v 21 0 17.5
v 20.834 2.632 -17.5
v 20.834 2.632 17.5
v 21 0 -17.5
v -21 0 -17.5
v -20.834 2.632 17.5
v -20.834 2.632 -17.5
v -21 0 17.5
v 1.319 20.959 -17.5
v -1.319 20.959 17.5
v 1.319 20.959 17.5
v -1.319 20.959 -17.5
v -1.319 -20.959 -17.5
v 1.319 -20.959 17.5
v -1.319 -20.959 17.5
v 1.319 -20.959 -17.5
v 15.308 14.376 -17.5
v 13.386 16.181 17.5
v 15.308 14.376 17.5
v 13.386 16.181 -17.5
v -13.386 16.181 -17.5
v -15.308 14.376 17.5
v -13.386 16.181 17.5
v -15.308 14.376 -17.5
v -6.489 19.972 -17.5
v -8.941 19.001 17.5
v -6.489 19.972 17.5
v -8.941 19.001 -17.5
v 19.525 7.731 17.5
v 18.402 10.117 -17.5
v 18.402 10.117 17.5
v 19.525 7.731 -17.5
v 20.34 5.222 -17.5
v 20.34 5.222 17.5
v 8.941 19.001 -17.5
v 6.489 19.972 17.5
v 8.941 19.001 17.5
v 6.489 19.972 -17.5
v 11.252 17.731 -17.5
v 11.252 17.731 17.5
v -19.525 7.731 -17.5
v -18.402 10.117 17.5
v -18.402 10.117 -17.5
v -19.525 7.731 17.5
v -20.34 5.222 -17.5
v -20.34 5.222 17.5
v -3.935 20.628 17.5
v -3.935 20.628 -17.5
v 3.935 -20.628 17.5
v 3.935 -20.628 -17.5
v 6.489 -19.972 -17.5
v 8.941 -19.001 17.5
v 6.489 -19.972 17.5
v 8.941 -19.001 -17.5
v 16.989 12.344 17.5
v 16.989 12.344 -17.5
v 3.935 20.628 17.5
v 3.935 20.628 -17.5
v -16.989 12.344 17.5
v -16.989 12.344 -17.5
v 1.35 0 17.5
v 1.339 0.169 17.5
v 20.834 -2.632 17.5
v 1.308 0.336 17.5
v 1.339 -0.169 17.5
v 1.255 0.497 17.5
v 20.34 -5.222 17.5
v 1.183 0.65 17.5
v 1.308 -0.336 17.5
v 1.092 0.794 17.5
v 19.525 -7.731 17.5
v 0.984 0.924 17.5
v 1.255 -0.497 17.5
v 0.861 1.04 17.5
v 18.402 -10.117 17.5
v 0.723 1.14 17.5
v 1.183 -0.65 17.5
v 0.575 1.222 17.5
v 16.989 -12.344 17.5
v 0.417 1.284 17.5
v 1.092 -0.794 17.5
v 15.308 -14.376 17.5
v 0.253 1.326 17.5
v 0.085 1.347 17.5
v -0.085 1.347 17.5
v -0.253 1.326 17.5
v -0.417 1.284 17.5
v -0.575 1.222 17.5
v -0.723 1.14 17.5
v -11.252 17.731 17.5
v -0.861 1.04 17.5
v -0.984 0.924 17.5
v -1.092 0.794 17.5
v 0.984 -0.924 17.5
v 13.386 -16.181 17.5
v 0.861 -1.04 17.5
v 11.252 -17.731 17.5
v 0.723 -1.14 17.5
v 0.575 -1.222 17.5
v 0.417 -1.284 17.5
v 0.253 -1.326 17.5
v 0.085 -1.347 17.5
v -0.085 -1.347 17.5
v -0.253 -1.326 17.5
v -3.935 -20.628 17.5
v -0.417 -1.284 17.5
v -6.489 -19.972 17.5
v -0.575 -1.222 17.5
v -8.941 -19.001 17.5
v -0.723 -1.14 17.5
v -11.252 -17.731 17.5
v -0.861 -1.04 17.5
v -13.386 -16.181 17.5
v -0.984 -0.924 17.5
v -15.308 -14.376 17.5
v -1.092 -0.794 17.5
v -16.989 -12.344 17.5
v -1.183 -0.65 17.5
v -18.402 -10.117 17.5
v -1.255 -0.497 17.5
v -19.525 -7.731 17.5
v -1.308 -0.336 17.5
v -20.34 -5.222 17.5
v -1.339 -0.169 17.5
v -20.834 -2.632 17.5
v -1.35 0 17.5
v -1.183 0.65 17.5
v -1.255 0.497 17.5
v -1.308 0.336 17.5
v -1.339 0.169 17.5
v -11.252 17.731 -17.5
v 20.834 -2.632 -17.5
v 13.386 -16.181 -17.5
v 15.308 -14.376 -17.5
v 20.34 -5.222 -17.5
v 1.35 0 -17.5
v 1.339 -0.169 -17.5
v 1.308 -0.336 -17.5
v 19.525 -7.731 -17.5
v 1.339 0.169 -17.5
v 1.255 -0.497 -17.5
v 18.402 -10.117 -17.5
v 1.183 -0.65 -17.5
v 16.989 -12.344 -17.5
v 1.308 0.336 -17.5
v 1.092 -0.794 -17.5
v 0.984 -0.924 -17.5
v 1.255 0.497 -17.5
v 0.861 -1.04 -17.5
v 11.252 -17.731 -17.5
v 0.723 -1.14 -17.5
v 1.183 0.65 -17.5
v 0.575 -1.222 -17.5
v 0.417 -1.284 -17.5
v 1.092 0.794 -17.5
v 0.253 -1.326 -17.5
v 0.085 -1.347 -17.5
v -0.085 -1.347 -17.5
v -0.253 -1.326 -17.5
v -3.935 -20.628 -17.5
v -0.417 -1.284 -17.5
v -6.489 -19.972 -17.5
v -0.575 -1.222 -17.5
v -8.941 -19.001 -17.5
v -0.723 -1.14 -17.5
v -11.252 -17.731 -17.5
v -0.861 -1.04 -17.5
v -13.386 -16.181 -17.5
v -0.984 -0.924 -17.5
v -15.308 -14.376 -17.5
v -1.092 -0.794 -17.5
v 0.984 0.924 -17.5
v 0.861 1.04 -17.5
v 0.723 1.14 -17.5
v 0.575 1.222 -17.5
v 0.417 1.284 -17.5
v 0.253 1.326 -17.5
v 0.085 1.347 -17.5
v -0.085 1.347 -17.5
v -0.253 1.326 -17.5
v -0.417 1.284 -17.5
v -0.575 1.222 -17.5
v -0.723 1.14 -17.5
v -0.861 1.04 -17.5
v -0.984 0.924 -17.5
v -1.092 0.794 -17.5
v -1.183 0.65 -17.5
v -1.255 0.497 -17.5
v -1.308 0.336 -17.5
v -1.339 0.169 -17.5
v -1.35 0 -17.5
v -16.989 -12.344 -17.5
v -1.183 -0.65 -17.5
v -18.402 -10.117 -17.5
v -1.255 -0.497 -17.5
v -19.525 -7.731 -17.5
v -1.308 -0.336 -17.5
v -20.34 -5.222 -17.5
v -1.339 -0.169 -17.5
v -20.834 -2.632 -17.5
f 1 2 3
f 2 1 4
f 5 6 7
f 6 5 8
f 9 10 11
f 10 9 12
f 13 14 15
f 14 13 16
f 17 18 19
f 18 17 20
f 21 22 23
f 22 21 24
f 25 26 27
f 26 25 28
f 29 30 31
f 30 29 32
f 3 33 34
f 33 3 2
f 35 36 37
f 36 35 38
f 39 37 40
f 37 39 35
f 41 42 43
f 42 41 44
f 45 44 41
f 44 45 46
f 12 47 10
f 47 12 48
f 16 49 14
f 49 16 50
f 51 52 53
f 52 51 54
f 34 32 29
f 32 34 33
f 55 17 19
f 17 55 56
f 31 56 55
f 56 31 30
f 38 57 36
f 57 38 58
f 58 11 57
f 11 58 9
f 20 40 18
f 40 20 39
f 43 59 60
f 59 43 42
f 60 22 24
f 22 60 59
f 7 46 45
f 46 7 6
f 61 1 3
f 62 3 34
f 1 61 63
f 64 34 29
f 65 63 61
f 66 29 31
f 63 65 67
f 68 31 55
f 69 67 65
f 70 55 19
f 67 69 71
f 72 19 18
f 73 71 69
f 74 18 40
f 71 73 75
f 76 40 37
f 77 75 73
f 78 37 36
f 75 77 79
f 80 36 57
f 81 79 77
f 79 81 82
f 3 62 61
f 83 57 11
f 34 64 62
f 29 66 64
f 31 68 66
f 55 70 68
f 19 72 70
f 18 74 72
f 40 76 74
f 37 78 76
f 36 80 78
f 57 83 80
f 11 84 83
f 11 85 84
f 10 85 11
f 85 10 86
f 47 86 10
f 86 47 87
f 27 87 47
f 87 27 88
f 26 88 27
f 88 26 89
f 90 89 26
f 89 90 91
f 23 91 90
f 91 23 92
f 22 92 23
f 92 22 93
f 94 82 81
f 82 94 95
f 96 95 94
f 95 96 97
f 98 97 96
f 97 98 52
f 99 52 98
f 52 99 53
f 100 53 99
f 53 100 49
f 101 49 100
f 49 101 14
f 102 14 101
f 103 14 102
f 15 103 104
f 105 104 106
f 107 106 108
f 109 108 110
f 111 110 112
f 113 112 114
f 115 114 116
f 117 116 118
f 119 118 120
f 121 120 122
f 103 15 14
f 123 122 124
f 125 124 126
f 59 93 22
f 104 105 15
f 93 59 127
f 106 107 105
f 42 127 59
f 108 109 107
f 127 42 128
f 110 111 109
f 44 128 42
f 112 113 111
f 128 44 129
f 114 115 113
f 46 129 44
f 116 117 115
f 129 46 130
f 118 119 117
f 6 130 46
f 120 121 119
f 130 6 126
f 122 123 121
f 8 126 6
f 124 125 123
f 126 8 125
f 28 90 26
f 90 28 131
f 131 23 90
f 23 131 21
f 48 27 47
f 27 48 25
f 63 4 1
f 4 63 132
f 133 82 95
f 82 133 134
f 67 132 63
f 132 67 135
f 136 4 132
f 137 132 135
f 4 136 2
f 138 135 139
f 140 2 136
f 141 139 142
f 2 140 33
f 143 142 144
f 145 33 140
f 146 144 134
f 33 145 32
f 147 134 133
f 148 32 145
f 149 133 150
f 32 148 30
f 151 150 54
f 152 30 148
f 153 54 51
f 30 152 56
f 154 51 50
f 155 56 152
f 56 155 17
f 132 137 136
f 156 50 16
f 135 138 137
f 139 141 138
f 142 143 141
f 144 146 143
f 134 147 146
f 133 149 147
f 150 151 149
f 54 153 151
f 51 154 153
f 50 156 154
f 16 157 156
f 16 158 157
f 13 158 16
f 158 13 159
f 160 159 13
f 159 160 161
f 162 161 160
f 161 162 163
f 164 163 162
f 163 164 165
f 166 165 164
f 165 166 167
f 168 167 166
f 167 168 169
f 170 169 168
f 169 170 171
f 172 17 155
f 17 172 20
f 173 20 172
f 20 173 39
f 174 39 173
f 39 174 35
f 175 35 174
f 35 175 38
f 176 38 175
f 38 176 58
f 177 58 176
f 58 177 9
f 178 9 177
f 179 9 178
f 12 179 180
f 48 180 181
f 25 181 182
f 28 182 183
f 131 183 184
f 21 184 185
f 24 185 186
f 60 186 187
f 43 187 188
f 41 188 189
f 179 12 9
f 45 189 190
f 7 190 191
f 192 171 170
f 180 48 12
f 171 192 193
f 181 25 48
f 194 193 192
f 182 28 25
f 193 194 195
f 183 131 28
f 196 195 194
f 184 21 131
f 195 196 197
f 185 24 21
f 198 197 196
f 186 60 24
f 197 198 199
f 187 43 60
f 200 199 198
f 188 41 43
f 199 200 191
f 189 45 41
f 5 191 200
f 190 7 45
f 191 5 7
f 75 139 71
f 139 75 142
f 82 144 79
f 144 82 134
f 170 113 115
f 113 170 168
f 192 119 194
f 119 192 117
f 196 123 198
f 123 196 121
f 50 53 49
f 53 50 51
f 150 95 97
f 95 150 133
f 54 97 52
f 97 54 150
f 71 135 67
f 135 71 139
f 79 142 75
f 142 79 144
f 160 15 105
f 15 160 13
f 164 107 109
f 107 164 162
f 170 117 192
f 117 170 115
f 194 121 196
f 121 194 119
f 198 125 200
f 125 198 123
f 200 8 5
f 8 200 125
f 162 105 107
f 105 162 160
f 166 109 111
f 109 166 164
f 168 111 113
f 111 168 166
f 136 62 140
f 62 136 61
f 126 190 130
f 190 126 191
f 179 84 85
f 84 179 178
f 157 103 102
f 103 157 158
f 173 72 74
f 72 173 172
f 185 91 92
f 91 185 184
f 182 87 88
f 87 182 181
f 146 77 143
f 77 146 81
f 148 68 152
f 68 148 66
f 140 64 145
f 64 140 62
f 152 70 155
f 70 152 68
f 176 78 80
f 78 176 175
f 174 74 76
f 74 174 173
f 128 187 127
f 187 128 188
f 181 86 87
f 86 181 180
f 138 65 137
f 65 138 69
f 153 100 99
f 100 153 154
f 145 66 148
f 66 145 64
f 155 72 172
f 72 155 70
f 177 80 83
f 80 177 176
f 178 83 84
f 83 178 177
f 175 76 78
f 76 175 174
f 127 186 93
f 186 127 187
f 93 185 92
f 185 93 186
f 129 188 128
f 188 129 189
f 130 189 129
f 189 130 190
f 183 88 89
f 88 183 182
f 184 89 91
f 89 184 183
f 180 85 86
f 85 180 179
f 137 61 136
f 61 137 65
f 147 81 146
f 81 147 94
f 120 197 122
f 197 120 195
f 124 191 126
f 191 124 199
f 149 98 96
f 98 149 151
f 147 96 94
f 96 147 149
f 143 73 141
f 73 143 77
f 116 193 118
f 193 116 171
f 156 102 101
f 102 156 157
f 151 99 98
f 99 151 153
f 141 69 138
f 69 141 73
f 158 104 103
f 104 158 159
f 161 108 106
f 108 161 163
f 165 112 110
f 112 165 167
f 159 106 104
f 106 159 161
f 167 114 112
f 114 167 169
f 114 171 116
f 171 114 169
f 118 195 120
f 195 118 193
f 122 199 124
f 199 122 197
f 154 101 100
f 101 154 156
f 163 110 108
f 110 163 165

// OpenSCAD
$fn = 50;


difference() {
	union() {
		translate(v = [0, 0, -17.5000000000]) {
			cylinder(h = 35, r = 21.0000000000);
		}
	}
	union() {
		translate(v = [0, 0, -100.0000000000]) {
			cylinder(h = 200, r = 1.3500000000);
		}
	}
}
